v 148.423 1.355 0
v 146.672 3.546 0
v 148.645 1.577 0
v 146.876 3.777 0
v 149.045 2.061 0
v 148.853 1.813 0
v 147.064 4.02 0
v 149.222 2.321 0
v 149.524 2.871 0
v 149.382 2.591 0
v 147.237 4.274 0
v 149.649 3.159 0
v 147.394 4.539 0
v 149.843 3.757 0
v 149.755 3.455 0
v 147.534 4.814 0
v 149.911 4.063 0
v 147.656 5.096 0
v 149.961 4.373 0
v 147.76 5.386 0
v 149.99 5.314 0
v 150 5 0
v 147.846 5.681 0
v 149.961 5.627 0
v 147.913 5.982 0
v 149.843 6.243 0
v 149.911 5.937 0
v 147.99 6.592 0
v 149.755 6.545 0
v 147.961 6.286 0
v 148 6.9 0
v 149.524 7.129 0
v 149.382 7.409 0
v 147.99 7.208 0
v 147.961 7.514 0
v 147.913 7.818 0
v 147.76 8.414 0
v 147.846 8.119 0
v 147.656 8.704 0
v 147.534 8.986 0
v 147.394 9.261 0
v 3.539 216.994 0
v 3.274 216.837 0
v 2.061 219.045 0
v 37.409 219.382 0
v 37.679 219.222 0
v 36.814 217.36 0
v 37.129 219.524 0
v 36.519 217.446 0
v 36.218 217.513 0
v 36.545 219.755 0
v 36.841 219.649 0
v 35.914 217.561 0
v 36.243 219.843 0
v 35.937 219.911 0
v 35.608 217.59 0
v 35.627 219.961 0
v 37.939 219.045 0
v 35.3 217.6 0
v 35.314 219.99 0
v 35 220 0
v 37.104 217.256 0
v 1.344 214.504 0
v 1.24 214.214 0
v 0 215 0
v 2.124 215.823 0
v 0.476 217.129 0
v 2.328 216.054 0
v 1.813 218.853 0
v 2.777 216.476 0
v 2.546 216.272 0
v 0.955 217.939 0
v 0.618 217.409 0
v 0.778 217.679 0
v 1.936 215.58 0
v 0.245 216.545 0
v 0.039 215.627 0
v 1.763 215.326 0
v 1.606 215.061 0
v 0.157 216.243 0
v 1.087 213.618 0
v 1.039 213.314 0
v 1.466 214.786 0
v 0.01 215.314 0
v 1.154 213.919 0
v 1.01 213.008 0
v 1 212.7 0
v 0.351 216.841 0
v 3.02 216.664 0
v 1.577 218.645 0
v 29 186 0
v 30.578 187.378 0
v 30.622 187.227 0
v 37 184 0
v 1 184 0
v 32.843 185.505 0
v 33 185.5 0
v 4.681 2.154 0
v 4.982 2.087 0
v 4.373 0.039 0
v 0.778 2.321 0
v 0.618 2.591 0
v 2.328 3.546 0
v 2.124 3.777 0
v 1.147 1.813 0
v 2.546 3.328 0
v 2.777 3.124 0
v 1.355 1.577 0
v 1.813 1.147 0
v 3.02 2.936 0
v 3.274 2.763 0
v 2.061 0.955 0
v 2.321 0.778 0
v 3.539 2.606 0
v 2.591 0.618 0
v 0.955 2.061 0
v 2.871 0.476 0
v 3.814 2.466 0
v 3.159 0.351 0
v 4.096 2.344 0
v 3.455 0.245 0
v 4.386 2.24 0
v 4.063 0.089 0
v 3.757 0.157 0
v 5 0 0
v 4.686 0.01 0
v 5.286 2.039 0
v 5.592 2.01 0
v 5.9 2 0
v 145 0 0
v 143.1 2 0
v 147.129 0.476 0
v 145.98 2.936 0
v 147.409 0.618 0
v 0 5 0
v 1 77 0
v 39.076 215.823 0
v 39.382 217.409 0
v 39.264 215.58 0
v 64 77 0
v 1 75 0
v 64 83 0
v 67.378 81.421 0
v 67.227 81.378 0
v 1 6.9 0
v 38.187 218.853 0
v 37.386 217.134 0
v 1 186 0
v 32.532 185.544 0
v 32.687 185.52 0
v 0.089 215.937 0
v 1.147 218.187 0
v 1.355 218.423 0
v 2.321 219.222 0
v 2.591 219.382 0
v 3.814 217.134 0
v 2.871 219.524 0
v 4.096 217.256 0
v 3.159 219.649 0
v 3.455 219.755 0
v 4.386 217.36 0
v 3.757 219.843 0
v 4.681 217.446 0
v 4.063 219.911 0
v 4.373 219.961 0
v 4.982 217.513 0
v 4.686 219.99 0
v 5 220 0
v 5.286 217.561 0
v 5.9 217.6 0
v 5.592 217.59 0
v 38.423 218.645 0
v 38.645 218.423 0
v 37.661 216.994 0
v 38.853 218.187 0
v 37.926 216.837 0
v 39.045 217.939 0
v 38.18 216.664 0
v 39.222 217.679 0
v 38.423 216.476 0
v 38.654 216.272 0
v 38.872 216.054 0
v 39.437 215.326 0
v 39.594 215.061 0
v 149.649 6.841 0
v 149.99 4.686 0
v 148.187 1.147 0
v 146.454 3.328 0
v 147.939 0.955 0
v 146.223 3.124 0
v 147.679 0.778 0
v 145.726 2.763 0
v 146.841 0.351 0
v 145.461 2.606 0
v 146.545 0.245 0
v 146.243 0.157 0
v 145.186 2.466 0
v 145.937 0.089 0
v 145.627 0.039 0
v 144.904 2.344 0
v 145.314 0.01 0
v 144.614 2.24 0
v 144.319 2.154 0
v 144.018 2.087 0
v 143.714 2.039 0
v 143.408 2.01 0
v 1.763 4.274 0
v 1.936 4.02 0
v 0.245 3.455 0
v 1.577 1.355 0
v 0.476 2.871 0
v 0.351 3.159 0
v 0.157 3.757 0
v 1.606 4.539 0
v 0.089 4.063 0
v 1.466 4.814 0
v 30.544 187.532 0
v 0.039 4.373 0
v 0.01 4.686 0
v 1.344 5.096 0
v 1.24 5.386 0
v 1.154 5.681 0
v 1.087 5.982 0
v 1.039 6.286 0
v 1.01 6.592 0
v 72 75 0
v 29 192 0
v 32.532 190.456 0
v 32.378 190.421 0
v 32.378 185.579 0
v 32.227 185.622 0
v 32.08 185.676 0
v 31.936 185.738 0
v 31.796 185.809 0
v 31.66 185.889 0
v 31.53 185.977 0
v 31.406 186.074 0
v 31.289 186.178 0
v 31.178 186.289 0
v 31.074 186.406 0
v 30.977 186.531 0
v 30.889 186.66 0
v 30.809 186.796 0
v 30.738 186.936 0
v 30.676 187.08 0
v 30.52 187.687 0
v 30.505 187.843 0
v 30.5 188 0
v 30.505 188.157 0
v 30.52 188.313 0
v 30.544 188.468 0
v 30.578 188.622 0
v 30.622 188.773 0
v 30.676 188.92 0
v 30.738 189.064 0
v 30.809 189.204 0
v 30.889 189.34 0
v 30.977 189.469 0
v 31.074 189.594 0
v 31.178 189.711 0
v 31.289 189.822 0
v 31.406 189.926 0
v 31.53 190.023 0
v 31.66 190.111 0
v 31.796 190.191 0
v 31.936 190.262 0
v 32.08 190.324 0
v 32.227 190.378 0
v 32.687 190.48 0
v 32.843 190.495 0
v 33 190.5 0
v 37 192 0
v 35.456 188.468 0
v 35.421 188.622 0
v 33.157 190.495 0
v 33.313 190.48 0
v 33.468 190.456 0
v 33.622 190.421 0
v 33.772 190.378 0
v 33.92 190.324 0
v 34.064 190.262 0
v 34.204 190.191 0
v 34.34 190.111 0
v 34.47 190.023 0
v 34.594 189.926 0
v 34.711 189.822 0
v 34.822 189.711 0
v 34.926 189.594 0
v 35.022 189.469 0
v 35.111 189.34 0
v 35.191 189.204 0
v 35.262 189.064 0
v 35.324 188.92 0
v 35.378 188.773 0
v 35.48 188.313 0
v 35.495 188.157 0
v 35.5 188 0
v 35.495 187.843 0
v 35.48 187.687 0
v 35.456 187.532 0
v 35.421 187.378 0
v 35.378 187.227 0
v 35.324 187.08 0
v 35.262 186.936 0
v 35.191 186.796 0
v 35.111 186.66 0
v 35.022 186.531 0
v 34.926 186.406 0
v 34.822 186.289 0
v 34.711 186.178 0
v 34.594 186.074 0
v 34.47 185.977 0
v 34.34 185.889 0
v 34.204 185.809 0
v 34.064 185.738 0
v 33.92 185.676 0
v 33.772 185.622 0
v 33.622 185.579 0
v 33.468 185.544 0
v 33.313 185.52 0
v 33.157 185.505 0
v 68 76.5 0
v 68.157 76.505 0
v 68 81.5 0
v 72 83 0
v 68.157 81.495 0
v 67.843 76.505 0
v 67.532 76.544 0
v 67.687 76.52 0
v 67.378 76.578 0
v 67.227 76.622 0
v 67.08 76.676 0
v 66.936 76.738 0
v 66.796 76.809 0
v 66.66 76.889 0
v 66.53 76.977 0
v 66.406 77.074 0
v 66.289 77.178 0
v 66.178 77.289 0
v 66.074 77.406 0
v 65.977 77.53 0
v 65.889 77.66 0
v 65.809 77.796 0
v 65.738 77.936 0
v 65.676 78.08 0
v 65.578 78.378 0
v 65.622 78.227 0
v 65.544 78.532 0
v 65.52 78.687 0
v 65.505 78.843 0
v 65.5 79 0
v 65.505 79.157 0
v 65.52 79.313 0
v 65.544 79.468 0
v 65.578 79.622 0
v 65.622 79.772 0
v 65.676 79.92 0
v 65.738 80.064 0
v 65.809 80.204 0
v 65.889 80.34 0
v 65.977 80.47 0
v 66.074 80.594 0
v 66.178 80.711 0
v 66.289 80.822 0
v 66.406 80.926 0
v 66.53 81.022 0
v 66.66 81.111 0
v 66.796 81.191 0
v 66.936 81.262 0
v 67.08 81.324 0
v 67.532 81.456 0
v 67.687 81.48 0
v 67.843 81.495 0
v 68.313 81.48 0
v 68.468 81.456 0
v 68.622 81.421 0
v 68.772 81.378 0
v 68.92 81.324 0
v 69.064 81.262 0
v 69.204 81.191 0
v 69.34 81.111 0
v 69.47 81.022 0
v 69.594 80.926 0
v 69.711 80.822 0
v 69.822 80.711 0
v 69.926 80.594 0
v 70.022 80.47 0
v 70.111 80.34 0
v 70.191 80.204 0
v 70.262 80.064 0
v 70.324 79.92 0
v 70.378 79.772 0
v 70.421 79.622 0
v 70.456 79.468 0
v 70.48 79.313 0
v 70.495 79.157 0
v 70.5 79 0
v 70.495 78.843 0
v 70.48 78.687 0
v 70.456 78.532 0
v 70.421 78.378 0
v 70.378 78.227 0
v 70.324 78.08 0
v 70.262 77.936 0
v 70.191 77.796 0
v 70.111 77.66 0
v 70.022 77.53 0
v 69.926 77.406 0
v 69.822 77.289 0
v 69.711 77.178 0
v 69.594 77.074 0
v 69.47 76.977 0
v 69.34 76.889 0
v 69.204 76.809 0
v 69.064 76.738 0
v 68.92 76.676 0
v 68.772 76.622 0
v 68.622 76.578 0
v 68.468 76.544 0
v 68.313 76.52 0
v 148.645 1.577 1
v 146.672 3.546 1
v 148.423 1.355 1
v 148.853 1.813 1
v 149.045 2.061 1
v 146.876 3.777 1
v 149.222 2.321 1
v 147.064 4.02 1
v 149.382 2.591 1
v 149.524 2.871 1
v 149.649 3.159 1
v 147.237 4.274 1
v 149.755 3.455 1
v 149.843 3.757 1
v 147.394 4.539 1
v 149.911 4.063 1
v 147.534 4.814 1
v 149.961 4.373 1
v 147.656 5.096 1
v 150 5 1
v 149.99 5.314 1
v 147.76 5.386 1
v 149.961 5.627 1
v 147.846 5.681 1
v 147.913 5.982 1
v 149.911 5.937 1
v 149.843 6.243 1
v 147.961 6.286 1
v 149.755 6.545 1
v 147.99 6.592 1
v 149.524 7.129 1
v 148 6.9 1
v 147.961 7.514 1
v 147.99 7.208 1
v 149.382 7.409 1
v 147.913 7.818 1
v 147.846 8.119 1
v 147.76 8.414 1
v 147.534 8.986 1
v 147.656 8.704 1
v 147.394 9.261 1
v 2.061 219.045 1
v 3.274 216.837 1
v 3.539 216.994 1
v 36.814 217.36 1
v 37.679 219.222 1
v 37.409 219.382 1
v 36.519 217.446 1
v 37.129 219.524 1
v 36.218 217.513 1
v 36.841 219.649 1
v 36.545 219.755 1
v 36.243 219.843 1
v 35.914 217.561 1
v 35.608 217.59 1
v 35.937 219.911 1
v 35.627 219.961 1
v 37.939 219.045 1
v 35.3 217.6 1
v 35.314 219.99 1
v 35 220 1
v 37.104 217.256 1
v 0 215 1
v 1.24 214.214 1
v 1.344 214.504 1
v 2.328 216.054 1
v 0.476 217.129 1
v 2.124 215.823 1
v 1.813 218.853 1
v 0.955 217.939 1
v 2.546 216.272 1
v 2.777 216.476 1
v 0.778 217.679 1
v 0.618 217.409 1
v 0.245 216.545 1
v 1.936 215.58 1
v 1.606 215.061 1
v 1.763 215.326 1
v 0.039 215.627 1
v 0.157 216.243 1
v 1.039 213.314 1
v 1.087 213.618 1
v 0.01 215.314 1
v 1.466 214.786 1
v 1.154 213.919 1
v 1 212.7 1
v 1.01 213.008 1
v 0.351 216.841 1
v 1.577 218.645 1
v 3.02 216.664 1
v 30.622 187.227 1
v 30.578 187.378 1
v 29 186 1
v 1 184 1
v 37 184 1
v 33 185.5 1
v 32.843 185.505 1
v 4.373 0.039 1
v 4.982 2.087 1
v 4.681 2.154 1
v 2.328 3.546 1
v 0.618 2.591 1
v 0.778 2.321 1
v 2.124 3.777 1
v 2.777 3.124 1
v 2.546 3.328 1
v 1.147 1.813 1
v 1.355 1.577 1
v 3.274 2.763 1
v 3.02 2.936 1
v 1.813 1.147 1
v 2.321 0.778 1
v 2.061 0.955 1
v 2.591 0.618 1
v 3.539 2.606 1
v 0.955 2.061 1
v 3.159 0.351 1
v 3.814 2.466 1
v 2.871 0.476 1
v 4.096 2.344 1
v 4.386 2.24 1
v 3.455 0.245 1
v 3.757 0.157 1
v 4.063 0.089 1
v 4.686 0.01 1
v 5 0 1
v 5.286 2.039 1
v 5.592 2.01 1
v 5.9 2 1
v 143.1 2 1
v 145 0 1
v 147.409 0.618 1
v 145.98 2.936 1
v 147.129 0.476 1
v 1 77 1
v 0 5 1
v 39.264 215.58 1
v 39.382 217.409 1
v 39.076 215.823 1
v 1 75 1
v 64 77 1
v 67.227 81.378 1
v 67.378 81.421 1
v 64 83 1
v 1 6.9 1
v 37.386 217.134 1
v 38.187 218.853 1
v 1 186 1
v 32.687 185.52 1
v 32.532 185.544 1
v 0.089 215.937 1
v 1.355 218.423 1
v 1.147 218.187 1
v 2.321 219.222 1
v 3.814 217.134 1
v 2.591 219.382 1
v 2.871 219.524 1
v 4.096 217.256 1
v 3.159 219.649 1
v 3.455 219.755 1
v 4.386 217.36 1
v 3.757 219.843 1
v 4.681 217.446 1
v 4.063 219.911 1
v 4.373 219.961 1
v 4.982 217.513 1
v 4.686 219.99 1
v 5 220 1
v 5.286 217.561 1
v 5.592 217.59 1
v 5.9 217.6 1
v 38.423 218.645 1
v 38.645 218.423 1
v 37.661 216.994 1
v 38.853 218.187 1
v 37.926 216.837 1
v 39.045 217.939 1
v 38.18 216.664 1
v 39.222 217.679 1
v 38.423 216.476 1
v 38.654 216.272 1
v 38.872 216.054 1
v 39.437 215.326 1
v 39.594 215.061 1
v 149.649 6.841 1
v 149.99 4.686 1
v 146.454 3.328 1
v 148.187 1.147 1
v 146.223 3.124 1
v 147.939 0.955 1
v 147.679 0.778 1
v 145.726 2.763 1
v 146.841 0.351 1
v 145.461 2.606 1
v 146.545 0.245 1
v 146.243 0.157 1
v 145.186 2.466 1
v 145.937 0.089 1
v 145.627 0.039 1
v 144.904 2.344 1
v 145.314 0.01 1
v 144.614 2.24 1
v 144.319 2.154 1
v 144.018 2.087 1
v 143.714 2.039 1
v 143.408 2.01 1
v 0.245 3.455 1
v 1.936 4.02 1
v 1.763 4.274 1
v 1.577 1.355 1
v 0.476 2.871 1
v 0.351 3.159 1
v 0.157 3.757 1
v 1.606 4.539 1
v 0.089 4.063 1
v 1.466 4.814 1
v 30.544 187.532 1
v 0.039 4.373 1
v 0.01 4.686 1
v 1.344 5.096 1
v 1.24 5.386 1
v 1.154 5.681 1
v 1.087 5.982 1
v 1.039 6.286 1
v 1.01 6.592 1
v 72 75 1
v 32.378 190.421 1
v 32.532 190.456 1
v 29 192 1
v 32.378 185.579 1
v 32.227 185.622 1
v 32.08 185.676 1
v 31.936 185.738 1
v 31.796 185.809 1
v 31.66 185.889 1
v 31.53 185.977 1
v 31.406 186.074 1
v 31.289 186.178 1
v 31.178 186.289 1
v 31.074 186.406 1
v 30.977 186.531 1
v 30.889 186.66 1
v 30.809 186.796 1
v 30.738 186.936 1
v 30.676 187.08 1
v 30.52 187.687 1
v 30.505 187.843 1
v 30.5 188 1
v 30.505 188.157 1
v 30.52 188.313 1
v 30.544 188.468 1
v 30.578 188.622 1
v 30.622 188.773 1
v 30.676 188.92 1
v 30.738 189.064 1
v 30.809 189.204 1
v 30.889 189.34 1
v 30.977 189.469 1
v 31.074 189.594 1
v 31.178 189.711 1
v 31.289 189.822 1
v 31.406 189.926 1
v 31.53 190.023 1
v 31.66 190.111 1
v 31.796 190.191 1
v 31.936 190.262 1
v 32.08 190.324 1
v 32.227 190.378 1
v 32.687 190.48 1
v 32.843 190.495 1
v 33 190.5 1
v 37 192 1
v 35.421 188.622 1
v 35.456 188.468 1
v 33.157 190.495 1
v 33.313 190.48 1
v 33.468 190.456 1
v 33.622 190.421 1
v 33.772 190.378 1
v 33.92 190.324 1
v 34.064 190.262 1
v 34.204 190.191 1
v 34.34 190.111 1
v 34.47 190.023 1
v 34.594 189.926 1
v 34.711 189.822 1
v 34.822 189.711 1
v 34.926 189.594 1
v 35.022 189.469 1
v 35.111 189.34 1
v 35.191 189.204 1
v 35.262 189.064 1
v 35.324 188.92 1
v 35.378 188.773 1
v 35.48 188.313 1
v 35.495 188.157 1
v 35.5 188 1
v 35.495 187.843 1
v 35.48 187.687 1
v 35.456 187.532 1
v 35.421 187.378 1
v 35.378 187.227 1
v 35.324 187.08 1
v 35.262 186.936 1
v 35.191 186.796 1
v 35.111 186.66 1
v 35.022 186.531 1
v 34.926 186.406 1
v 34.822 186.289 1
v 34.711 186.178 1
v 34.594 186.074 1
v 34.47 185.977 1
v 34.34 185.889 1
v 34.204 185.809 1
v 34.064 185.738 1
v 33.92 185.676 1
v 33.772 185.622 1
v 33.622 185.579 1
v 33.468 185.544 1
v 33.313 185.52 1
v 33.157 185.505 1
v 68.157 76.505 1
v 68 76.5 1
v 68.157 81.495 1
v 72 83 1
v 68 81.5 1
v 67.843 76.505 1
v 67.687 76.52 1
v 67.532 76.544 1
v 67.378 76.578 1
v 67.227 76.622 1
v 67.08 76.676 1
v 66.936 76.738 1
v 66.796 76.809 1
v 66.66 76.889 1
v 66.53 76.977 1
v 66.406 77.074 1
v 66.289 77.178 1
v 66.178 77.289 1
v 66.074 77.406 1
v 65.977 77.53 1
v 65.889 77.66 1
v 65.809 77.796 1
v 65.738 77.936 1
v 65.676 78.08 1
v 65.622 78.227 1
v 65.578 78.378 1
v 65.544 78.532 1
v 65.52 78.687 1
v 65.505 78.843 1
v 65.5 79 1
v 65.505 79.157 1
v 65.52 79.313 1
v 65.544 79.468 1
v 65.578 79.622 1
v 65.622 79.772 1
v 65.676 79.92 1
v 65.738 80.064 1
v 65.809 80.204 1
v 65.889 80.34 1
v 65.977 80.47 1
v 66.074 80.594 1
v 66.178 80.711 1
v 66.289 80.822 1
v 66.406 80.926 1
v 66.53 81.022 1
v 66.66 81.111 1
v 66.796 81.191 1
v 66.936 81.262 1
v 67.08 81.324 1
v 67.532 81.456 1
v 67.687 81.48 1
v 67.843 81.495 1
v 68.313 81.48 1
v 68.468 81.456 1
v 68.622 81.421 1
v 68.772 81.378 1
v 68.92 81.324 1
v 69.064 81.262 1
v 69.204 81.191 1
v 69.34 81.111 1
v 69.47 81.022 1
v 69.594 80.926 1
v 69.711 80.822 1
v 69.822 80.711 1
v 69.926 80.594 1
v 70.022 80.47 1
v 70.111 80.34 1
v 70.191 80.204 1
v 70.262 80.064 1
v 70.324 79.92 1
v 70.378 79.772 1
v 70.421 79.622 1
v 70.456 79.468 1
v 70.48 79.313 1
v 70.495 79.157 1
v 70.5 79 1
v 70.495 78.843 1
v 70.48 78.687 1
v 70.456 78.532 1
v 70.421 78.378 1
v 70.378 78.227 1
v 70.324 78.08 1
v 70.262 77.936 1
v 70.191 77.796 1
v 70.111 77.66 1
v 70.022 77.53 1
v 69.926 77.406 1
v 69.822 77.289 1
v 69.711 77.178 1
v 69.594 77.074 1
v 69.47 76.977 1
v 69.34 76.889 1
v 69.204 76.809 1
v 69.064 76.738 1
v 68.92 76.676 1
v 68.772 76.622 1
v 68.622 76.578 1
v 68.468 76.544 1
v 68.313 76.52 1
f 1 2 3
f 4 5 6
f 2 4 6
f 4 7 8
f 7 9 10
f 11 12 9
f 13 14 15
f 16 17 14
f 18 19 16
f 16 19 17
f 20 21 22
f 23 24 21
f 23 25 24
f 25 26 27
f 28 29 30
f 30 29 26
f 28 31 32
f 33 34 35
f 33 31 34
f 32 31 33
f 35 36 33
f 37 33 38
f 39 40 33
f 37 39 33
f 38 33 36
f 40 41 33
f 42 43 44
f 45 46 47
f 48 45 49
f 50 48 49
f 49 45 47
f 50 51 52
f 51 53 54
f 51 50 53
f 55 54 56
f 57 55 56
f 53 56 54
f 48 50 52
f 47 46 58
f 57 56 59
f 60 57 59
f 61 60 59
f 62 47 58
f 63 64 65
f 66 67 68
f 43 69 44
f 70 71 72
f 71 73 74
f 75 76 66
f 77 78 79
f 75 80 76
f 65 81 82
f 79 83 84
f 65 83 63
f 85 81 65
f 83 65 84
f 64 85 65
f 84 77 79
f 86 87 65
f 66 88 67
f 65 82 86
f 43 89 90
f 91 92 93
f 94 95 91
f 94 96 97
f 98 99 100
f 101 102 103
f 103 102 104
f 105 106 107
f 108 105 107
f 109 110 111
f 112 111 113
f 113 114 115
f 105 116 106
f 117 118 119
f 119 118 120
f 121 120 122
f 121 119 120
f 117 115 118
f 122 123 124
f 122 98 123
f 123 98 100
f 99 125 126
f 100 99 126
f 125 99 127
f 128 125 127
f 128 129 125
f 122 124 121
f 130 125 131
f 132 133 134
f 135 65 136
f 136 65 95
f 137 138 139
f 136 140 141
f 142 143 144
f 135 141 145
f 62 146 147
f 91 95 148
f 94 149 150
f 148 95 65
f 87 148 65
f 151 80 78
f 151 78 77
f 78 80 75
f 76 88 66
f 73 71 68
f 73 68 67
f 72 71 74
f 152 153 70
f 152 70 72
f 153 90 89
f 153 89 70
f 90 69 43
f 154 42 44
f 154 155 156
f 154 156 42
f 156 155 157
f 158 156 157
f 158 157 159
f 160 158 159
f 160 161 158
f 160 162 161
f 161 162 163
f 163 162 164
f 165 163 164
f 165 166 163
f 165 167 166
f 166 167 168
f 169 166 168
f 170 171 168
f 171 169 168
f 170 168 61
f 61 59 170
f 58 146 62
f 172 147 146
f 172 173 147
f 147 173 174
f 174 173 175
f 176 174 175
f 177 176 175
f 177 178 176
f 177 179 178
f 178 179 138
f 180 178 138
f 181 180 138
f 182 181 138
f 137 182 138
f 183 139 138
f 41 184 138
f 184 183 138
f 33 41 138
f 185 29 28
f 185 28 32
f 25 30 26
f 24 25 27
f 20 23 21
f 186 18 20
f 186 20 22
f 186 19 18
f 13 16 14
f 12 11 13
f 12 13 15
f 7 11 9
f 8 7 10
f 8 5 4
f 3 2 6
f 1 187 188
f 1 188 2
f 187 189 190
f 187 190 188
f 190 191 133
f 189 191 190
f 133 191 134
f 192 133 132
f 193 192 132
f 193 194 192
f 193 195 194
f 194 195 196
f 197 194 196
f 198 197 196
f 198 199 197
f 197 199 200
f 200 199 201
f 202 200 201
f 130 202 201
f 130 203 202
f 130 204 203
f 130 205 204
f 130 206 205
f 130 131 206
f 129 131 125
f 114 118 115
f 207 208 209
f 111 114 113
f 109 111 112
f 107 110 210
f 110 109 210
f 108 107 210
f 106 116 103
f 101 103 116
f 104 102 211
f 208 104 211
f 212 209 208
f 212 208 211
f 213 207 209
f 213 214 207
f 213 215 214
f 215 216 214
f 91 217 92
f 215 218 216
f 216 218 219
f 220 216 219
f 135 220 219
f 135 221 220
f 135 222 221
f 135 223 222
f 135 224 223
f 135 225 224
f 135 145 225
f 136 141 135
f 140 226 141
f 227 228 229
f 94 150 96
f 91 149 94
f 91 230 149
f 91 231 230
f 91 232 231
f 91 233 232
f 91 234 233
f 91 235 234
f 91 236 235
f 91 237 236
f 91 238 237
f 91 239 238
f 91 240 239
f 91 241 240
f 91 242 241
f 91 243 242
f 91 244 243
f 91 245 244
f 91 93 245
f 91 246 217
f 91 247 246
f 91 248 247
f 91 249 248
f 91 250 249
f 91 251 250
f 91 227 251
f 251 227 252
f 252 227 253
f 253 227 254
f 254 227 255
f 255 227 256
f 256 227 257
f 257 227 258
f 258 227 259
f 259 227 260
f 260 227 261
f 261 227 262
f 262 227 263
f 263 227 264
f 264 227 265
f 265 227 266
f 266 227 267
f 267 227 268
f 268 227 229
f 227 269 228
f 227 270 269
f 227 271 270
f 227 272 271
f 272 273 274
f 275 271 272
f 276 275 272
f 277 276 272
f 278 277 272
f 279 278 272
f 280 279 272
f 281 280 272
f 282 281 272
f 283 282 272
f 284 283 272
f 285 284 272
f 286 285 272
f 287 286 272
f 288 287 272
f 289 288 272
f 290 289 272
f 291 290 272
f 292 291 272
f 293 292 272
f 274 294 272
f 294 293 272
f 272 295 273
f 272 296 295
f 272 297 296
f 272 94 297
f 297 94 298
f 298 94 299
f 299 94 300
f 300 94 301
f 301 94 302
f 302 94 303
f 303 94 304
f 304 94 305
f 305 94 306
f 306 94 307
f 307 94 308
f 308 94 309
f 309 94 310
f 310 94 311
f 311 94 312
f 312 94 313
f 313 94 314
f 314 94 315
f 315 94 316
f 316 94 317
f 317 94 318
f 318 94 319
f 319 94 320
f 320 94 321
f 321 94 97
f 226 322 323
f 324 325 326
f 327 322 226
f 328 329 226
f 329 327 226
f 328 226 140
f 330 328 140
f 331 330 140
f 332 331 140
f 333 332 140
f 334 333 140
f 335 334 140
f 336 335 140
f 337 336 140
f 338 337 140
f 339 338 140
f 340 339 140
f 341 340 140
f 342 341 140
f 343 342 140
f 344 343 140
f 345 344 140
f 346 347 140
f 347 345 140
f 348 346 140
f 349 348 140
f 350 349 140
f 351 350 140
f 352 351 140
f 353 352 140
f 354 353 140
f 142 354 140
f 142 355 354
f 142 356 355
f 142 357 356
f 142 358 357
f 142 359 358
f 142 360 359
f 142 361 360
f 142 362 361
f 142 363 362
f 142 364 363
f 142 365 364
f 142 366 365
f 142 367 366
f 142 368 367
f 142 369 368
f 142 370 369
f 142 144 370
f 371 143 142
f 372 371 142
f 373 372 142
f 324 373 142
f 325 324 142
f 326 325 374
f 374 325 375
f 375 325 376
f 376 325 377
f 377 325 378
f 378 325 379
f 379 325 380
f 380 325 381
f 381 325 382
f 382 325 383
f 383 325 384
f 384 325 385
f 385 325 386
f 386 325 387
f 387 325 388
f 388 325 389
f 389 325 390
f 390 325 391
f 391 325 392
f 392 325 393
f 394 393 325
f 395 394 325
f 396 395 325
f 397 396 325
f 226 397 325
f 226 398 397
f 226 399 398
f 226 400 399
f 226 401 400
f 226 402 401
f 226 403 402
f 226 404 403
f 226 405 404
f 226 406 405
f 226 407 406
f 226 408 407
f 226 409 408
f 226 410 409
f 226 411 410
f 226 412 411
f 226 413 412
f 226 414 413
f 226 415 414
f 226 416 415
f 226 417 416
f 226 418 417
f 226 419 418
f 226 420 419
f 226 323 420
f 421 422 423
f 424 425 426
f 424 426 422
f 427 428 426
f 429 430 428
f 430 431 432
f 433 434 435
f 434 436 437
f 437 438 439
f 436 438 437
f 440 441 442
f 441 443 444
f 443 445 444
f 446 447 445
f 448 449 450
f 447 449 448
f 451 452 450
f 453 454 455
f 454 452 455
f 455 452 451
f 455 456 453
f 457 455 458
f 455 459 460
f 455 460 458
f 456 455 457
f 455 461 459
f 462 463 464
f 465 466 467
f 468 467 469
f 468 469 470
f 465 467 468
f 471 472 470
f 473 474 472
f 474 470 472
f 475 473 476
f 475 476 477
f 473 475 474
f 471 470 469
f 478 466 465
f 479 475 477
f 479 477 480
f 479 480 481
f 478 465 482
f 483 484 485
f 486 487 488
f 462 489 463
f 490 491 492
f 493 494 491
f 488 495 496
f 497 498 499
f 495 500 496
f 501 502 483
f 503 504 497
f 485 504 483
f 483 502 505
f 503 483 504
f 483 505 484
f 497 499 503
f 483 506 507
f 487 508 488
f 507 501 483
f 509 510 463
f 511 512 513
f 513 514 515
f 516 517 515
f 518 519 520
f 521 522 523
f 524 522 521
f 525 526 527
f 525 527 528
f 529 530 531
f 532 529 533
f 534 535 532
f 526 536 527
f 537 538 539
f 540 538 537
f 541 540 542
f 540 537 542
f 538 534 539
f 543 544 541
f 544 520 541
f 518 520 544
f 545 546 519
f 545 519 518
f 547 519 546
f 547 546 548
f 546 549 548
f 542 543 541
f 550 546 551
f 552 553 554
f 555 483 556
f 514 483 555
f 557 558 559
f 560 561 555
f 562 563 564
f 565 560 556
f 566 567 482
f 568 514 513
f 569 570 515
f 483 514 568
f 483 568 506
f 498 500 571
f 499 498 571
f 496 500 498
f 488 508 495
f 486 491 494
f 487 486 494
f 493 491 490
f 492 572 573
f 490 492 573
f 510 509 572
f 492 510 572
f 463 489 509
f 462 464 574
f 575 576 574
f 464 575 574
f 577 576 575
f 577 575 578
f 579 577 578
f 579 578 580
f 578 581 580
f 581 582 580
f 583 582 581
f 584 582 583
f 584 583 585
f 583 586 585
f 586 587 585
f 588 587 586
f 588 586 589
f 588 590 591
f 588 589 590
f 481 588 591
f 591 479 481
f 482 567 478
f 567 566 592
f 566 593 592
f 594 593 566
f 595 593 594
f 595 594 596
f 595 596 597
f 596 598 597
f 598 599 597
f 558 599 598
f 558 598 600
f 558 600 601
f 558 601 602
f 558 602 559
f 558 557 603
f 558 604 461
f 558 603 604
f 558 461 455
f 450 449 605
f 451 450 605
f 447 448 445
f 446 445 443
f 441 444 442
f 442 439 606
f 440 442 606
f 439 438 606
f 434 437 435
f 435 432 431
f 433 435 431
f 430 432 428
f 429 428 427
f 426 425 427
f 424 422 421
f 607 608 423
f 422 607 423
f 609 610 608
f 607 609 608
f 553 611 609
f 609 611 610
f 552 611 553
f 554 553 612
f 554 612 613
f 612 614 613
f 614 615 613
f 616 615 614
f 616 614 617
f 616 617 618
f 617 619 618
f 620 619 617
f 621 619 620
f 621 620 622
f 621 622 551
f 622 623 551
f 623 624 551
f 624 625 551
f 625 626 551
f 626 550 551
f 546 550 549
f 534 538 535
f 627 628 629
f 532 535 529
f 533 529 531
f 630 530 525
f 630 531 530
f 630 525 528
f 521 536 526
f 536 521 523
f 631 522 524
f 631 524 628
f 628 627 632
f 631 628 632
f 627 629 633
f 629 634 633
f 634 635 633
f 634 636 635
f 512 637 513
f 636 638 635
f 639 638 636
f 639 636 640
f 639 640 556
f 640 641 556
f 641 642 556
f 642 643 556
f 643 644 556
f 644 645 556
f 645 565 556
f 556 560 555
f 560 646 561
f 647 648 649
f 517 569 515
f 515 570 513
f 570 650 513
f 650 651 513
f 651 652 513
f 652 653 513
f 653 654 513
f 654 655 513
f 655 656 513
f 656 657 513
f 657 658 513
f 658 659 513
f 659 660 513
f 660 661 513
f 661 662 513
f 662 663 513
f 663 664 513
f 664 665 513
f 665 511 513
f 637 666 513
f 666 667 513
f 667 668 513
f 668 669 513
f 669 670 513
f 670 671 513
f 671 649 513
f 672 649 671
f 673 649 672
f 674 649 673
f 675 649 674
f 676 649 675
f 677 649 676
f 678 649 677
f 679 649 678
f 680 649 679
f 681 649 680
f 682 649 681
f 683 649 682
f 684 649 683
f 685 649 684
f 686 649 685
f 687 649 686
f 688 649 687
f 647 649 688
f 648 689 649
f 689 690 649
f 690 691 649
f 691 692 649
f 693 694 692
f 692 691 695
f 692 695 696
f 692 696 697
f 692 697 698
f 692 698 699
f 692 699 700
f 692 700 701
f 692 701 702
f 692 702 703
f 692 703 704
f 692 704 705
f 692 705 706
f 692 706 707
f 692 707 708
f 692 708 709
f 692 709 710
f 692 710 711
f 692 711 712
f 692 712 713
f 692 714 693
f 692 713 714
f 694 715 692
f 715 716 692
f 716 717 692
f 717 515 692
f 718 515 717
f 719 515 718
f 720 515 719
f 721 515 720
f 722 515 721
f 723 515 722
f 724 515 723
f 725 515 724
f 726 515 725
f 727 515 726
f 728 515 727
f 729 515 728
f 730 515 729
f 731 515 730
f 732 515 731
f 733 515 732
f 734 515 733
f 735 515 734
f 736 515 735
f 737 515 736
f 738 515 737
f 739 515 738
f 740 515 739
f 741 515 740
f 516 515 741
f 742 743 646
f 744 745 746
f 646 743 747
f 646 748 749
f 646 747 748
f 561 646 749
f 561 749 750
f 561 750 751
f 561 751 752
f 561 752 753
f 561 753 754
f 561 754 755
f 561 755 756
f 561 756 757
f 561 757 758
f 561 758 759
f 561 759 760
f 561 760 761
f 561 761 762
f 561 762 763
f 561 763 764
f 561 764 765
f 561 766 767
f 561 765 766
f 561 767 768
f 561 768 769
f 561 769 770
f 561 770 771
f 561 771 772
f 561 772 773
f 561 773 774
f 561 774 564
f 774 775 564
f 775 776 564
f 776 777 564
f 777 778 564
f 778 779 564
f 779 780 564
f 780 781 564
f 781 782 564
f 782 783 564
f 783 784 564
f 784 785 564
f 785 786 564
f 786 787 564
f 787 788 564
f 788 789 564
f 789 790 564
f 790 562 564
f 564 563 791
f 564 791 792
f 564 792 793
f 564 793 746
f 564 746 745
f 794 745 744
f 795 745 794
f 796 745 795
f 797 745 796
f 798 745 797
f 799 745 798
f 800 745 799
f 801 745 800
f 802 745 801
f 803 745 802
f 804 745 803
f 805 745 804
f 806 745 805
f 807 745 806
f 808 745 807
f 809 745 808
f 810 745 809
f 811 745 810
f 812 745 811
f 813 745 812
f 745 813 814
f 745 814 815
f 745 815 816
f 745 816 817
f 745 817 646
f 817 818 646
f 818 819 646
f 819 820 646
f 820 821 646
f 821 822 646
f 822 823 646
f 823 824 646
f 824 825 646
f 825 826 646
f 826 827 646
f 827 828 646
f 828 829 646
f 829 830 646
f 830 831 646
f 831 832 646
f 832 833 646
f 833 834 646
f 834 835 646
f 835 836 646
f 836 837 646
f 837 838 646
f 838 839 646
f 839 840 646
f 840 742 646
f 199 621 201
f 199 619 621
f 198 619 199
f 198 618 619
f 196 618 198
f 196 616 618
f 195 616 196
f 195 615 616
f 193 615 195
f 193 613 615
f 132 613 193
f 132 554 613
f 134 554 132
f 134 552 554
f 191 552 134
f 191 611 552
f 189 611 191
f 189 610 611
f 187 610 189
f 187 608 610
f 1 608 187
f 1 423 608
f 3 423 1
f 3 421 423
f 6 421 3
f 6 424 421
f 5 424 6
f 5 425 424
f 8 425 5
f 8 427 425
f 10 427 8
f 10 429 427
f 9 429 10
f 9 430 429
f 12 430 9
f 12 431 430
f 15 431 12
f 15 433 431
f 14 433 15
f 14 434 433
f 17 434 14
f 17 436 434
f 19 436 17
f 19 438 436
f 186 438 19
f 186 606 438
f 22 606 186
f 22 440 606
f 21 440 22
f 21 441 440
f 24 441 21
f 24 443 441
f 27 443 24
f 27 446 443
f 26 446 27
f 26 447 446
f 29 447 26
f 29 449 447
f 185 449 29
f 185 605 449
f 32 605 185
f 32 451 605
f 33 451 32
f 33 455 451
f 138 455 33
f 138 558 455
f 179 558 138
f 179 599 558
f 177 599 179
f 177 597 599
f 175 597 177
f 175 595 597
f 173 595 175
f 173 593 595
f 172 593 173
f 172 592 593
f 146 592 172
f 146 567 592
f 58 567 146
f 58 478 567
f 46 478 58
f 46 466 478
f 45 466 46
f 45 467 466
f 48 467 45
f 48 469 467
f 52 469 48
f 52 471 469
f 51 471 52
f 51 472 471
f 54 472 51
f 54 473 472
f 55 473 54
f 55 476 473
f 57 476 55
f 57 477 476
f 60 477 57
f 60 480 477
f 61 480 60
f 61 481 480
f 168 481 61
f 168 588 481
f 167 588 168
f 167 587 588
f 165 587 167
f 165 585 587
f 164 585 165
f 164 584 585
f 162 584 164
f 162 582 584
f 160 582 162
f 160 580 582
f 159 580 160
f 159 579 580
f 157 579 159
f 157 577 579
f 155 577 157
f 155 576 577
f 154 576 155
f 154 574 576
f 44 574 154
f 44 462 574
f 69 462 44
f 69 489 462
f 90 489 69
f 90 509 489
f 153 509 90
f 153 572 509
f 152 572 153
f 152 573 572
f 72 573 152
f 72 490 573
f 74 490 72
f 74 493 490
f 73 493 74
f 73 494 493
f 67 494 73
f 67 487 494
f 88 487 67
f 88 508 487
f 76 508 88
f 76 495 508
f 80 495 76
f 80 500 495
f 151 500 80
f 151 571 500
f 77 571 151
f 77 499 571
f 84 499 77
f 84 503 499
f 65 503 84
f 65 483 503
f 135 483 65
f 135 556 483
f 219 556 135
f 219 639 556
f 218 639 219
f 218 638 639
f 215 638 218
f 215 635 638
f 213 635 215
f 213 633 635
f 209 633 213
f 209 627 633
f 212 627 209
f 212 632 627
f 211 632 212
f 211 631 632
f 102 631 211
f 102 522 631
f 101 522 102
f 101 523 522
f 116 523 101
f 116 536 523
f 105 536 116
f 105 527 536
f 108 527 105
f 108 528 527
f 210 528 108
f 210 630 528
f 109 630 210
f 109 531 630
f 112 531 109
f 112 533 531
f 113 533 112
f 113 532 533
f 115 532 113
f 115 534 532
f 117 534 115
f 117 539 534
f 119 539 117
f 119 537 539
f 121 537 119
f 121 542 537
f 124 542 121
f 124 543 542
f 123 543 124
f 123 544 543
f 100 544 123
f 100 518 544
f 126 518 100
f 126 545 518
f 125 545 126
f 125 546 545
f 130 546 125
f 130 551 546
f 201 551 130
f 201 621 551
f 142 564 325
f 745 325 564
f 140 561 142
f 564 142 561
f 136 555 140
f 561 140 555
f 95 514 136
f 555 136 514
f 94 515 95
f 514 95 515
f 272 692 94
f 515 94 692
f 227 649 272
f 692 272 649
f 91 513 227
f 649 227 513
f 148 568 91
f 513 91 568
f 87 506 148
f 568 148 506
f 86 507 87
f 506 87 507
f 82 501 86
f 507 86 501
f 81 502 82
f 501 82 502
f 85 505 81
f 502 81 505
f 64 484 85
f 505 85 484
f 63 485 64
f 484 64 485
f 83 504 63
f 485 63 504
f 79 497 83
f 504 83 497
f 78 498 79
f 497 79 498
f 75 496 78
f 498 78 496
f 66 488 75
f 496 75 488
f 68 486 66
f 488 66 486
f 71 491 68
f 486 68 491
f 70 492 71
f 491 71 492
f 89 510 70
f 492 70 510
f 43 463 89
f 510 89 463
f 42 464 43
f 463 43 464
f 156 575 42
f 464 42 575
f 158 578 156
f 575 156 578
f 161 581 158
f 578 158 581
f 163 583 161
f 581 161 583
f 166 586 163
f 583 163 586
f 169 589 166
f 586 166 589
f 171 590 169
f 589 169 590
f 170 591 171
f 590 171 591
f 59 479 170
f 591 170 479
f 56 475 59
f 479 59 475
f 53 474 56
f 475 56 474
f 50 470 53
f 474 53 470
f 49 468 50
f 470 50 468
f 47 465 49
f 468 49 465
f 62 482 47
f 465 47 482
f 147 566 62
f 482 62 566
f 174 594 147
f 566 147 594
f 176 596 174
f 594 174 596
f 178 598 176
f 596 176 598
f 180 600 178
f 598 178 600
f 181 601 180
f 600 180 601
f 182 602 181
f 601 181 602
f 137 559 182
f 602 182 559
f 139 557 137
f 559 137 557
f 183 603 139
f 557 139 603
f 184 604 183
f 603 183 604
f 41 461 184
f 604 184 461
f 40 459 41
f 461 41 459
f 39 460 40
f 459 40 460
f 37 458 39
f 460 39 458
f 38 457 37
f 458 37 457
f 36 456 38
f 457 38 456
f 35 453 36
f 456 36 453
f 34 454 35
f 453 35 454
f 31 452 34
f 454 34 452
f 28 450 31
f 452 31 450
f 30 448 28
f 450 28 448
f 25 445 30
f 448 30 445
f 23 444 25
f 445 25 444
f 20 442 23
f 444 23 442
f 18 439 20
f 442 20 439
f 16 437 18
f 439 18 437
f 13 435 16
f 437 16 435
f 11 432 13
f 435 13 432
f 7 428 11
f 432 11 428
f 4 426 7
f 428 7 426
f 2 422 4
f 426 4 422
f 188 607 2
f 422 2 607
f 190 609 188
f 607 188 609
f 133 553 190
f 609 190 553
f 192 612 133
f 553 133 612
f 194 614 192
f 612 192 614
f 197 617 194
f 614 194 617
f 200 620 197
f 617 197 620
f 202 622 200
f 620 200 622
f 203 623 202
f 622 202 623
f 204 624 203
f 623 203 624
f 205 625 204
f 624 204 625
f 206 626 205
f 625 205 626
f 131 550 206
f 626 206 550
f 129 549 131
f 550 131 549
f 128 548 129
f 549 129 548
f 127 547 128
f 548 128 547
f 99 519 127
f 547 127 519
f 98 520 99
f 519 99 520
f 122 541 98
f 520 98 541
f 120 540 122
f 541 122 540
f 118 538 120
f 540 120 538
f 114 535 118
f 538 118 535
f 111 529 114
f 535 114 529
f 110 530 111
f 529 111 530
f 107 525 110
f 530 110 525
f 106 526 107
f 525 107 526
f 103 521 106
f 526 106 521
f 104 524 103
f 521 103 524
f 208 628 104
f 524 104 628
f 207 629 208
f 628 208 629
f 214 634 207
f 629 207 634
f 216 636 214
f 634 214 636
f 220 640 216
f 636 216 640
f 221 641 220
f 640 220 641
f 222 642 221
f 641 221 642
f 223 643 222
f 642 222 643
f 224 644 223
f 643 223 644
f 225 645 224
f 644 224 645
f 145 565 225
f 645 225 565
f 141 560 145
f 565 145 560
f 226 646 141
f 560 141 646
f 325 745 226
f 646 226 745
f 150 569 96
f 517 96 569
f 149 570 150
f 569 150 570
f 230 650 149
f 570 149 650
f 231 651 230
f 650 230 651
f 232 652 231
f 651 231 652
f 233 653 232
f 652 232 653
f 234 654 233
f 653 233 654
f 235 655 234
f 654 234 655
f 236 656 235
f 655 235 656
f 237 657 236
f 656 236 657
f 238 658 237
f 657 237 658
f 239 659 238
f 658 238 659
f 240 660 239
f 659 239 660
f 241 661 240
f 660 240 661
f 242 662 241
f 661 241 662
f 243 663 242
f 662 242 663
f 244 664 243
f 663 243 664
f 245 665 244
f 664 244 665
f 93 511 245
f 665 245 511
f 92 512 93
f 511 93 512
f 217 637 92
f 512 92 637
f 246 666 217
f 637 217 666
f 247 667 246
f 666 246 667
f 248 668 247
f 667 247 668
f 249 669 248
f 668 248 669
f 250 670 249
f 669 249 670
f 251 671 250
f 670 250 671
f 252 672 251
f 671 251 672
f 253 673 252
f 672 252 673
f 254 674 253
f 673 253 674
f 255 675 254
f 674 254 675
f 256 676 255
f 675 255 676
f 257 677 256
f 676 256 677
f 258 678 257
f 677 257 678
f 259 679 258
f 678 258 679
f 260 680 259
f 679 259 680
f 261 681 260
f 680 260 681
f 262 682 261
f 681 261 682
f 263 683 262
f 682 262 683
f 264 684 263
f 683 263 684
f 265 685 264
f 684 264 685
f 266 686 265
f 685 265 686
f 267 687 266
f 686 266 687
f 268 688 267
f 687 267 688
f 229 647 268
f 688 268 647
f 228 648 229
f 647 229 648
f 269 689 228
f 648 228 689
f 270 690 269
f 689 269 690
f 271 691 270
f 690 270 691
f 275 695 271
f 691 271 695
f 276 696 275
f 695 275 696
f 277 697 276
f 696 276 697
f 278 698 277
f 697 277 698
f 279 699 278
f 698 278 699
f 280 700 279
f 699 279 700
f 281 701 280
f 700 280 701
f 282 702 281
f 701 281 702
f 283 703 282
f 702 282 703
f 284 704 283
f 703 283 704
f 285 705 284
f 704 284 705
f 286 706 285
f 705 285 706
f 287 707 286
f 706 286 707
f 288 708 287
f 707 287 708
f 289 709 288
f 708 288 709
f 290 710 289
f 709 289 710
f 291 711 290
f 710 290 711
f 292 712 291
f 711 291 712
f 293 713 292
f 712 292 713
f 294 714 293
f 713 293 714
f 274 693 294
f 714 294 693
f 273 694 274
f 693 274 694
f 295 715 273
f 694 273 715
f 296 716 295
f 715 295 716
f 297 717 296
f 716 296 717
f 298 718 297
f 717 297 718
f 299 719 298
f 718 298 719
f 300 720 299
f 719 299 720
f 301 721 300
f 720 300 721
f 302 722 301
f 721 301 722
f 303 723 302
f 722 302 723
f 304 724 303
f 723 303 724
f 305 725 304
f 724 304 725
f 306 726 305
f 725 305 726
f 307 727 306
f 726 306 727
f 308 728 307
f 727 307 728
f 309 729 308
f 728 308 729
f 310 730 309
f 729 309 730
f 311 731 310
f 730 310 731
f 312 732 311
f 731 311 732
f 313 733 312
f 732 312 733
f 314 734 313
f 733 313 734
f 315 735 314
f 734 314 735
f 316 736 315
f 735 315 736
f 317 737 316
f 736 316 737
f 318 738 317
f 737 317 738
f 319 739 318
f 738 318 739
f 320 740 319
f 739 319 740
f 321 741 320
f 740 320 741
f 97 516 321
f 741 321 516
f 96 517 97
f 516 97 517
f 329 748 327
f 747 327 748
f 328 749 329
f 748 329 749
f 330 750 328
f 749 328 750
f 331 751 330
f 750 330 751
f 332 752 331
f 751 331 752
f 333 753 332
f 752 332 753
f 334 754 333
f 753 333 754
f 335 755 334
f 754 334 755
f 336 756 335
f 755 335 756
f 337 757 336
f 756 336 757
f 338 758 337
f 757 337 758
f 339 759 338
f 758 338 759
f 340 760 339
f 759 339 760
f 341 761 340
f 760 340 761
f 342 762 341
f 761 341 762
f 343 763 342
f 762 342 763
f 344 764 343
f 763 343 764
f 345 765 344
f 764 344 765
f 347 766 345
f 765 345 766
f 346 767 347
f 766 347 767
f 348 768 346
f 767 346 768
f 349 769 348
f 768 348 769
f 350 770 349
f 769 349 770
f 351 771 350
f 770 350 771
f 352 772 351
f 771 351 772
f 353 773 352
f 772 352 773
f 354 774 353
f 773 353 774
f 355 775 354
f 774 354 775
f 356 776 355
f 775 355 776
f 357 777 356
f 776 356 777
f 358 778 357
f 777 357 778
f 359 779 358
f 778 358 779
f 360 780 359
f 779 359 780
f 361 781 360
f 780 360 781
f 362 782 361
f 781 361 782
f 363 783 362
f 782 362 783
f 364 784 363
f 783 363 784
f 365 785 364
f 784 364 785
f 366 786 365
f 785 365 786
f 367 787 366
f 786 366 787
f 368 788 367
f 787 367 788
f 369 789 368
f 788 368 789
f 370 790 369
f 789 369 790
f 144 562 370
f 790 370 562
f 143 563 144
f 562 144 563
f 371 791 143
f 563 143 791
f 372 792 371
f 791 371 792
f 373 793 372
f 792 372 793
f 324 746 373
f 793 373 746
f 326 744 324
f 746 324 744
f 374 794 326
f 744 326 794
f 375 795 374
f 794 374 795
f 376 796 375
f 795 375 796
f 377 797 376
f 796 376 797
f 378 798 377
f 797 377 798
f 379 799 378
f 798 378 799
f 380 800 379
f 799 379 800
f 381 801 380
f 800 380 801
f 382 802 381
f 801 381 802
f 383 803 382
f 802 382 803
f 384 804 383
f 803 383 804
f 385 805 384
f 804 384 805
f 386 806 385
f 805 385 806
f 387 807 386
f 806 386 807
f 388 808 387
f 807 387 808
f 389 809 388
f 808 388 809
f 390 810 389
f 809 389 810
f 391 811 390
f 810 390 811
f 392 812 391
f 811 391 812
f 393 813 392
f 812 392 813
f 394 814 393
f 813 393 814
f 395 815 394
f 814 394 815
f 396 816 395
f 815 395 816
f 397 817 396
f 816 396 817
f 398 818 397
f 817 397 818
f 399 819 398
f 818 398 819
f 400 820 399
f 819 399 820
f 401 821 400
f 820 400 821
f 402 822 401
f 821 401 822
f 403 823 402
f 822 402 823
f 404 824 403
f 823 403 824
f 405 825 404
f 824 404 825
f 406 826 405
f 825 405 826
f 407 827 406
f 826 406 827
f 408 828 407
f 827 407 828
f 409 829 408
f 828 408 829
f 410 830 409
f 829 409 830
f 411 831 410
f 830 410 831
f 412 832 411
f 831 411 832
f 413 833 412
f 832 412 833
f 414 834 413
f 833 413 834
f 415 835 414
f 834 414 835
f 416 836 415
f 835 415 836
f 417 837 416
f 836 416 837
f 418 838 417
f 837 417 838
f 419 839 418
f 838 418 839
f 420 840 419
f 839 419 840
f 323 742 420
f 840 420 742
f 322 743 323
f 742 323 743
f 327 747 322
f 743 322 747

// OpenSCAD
// file: ../modules/rounded_quadrilateral.scad
module roundedQuadrilateral(bl, tl, tr, br, radius=5) {
  assert(bl)


  hull() {
    // Bottom left
    bl_x = bl[0] + radius;
    bl_y = bl[1] + radius;
    translate([bl_x, bl_y, 0]) {
      circle(r=radius);
    }

    // Top Left
    tl_x = tl[0] + radius;
    tl_y = tl[1] - radius;
    translate([tl_x, tl_y, 0]) {
      circle(r=radius);
    }

    // Top Right
    tr_x = tr[0] - radius;
    tr_y = tr[1] - radius;
    translate([tr_x, tr_y, 0]) {
      circle(r=radius);
    }

    // Bottom Right
    br_x = br[0] - radius;
    br_y = br[1] + radius;
    translate([br_x, br_y, 0]) {
      circle(r=radius);
    }
  }
}
// main file
$fn = 100;

include <../modules/rounded_quadrilateral.scad>;

p0 = [0, 0];
p1 = [0, 220];
p2 = [40, 220];
p3 = [150, 0];

linear_extrude(height=1, convexity=0, twist=0) {
  difference() {
    roundedQuadrilateral(p0, p1, p2, p3);

    translate([1, 2, 0]) {
      scale([0.98, 0.98, 1]) {
        roundedQuadrilateral(p0, p1, p2, p3);
      }
    }
  }

  // Top hole
  translate([0, 184, 0]) {
    square(size=[29, 2]);
  }
  difference() {
    translate([29, 184, 0]) {
      square(size=[8, 8]);
    }
    translate([33, 188, 0]) {
      circle(r=(5/2));
    }
  }

  // bottom hole
  translate([0, 75, 0]) {
    square(size=[64, 2]);
  }
  difference() {
    translate([64, 75, 0]) {
      square(size=[8, 8]);
    }
    translate([68, 79, 0]) {
      circle(r=(5/2));
    }
  }
}
